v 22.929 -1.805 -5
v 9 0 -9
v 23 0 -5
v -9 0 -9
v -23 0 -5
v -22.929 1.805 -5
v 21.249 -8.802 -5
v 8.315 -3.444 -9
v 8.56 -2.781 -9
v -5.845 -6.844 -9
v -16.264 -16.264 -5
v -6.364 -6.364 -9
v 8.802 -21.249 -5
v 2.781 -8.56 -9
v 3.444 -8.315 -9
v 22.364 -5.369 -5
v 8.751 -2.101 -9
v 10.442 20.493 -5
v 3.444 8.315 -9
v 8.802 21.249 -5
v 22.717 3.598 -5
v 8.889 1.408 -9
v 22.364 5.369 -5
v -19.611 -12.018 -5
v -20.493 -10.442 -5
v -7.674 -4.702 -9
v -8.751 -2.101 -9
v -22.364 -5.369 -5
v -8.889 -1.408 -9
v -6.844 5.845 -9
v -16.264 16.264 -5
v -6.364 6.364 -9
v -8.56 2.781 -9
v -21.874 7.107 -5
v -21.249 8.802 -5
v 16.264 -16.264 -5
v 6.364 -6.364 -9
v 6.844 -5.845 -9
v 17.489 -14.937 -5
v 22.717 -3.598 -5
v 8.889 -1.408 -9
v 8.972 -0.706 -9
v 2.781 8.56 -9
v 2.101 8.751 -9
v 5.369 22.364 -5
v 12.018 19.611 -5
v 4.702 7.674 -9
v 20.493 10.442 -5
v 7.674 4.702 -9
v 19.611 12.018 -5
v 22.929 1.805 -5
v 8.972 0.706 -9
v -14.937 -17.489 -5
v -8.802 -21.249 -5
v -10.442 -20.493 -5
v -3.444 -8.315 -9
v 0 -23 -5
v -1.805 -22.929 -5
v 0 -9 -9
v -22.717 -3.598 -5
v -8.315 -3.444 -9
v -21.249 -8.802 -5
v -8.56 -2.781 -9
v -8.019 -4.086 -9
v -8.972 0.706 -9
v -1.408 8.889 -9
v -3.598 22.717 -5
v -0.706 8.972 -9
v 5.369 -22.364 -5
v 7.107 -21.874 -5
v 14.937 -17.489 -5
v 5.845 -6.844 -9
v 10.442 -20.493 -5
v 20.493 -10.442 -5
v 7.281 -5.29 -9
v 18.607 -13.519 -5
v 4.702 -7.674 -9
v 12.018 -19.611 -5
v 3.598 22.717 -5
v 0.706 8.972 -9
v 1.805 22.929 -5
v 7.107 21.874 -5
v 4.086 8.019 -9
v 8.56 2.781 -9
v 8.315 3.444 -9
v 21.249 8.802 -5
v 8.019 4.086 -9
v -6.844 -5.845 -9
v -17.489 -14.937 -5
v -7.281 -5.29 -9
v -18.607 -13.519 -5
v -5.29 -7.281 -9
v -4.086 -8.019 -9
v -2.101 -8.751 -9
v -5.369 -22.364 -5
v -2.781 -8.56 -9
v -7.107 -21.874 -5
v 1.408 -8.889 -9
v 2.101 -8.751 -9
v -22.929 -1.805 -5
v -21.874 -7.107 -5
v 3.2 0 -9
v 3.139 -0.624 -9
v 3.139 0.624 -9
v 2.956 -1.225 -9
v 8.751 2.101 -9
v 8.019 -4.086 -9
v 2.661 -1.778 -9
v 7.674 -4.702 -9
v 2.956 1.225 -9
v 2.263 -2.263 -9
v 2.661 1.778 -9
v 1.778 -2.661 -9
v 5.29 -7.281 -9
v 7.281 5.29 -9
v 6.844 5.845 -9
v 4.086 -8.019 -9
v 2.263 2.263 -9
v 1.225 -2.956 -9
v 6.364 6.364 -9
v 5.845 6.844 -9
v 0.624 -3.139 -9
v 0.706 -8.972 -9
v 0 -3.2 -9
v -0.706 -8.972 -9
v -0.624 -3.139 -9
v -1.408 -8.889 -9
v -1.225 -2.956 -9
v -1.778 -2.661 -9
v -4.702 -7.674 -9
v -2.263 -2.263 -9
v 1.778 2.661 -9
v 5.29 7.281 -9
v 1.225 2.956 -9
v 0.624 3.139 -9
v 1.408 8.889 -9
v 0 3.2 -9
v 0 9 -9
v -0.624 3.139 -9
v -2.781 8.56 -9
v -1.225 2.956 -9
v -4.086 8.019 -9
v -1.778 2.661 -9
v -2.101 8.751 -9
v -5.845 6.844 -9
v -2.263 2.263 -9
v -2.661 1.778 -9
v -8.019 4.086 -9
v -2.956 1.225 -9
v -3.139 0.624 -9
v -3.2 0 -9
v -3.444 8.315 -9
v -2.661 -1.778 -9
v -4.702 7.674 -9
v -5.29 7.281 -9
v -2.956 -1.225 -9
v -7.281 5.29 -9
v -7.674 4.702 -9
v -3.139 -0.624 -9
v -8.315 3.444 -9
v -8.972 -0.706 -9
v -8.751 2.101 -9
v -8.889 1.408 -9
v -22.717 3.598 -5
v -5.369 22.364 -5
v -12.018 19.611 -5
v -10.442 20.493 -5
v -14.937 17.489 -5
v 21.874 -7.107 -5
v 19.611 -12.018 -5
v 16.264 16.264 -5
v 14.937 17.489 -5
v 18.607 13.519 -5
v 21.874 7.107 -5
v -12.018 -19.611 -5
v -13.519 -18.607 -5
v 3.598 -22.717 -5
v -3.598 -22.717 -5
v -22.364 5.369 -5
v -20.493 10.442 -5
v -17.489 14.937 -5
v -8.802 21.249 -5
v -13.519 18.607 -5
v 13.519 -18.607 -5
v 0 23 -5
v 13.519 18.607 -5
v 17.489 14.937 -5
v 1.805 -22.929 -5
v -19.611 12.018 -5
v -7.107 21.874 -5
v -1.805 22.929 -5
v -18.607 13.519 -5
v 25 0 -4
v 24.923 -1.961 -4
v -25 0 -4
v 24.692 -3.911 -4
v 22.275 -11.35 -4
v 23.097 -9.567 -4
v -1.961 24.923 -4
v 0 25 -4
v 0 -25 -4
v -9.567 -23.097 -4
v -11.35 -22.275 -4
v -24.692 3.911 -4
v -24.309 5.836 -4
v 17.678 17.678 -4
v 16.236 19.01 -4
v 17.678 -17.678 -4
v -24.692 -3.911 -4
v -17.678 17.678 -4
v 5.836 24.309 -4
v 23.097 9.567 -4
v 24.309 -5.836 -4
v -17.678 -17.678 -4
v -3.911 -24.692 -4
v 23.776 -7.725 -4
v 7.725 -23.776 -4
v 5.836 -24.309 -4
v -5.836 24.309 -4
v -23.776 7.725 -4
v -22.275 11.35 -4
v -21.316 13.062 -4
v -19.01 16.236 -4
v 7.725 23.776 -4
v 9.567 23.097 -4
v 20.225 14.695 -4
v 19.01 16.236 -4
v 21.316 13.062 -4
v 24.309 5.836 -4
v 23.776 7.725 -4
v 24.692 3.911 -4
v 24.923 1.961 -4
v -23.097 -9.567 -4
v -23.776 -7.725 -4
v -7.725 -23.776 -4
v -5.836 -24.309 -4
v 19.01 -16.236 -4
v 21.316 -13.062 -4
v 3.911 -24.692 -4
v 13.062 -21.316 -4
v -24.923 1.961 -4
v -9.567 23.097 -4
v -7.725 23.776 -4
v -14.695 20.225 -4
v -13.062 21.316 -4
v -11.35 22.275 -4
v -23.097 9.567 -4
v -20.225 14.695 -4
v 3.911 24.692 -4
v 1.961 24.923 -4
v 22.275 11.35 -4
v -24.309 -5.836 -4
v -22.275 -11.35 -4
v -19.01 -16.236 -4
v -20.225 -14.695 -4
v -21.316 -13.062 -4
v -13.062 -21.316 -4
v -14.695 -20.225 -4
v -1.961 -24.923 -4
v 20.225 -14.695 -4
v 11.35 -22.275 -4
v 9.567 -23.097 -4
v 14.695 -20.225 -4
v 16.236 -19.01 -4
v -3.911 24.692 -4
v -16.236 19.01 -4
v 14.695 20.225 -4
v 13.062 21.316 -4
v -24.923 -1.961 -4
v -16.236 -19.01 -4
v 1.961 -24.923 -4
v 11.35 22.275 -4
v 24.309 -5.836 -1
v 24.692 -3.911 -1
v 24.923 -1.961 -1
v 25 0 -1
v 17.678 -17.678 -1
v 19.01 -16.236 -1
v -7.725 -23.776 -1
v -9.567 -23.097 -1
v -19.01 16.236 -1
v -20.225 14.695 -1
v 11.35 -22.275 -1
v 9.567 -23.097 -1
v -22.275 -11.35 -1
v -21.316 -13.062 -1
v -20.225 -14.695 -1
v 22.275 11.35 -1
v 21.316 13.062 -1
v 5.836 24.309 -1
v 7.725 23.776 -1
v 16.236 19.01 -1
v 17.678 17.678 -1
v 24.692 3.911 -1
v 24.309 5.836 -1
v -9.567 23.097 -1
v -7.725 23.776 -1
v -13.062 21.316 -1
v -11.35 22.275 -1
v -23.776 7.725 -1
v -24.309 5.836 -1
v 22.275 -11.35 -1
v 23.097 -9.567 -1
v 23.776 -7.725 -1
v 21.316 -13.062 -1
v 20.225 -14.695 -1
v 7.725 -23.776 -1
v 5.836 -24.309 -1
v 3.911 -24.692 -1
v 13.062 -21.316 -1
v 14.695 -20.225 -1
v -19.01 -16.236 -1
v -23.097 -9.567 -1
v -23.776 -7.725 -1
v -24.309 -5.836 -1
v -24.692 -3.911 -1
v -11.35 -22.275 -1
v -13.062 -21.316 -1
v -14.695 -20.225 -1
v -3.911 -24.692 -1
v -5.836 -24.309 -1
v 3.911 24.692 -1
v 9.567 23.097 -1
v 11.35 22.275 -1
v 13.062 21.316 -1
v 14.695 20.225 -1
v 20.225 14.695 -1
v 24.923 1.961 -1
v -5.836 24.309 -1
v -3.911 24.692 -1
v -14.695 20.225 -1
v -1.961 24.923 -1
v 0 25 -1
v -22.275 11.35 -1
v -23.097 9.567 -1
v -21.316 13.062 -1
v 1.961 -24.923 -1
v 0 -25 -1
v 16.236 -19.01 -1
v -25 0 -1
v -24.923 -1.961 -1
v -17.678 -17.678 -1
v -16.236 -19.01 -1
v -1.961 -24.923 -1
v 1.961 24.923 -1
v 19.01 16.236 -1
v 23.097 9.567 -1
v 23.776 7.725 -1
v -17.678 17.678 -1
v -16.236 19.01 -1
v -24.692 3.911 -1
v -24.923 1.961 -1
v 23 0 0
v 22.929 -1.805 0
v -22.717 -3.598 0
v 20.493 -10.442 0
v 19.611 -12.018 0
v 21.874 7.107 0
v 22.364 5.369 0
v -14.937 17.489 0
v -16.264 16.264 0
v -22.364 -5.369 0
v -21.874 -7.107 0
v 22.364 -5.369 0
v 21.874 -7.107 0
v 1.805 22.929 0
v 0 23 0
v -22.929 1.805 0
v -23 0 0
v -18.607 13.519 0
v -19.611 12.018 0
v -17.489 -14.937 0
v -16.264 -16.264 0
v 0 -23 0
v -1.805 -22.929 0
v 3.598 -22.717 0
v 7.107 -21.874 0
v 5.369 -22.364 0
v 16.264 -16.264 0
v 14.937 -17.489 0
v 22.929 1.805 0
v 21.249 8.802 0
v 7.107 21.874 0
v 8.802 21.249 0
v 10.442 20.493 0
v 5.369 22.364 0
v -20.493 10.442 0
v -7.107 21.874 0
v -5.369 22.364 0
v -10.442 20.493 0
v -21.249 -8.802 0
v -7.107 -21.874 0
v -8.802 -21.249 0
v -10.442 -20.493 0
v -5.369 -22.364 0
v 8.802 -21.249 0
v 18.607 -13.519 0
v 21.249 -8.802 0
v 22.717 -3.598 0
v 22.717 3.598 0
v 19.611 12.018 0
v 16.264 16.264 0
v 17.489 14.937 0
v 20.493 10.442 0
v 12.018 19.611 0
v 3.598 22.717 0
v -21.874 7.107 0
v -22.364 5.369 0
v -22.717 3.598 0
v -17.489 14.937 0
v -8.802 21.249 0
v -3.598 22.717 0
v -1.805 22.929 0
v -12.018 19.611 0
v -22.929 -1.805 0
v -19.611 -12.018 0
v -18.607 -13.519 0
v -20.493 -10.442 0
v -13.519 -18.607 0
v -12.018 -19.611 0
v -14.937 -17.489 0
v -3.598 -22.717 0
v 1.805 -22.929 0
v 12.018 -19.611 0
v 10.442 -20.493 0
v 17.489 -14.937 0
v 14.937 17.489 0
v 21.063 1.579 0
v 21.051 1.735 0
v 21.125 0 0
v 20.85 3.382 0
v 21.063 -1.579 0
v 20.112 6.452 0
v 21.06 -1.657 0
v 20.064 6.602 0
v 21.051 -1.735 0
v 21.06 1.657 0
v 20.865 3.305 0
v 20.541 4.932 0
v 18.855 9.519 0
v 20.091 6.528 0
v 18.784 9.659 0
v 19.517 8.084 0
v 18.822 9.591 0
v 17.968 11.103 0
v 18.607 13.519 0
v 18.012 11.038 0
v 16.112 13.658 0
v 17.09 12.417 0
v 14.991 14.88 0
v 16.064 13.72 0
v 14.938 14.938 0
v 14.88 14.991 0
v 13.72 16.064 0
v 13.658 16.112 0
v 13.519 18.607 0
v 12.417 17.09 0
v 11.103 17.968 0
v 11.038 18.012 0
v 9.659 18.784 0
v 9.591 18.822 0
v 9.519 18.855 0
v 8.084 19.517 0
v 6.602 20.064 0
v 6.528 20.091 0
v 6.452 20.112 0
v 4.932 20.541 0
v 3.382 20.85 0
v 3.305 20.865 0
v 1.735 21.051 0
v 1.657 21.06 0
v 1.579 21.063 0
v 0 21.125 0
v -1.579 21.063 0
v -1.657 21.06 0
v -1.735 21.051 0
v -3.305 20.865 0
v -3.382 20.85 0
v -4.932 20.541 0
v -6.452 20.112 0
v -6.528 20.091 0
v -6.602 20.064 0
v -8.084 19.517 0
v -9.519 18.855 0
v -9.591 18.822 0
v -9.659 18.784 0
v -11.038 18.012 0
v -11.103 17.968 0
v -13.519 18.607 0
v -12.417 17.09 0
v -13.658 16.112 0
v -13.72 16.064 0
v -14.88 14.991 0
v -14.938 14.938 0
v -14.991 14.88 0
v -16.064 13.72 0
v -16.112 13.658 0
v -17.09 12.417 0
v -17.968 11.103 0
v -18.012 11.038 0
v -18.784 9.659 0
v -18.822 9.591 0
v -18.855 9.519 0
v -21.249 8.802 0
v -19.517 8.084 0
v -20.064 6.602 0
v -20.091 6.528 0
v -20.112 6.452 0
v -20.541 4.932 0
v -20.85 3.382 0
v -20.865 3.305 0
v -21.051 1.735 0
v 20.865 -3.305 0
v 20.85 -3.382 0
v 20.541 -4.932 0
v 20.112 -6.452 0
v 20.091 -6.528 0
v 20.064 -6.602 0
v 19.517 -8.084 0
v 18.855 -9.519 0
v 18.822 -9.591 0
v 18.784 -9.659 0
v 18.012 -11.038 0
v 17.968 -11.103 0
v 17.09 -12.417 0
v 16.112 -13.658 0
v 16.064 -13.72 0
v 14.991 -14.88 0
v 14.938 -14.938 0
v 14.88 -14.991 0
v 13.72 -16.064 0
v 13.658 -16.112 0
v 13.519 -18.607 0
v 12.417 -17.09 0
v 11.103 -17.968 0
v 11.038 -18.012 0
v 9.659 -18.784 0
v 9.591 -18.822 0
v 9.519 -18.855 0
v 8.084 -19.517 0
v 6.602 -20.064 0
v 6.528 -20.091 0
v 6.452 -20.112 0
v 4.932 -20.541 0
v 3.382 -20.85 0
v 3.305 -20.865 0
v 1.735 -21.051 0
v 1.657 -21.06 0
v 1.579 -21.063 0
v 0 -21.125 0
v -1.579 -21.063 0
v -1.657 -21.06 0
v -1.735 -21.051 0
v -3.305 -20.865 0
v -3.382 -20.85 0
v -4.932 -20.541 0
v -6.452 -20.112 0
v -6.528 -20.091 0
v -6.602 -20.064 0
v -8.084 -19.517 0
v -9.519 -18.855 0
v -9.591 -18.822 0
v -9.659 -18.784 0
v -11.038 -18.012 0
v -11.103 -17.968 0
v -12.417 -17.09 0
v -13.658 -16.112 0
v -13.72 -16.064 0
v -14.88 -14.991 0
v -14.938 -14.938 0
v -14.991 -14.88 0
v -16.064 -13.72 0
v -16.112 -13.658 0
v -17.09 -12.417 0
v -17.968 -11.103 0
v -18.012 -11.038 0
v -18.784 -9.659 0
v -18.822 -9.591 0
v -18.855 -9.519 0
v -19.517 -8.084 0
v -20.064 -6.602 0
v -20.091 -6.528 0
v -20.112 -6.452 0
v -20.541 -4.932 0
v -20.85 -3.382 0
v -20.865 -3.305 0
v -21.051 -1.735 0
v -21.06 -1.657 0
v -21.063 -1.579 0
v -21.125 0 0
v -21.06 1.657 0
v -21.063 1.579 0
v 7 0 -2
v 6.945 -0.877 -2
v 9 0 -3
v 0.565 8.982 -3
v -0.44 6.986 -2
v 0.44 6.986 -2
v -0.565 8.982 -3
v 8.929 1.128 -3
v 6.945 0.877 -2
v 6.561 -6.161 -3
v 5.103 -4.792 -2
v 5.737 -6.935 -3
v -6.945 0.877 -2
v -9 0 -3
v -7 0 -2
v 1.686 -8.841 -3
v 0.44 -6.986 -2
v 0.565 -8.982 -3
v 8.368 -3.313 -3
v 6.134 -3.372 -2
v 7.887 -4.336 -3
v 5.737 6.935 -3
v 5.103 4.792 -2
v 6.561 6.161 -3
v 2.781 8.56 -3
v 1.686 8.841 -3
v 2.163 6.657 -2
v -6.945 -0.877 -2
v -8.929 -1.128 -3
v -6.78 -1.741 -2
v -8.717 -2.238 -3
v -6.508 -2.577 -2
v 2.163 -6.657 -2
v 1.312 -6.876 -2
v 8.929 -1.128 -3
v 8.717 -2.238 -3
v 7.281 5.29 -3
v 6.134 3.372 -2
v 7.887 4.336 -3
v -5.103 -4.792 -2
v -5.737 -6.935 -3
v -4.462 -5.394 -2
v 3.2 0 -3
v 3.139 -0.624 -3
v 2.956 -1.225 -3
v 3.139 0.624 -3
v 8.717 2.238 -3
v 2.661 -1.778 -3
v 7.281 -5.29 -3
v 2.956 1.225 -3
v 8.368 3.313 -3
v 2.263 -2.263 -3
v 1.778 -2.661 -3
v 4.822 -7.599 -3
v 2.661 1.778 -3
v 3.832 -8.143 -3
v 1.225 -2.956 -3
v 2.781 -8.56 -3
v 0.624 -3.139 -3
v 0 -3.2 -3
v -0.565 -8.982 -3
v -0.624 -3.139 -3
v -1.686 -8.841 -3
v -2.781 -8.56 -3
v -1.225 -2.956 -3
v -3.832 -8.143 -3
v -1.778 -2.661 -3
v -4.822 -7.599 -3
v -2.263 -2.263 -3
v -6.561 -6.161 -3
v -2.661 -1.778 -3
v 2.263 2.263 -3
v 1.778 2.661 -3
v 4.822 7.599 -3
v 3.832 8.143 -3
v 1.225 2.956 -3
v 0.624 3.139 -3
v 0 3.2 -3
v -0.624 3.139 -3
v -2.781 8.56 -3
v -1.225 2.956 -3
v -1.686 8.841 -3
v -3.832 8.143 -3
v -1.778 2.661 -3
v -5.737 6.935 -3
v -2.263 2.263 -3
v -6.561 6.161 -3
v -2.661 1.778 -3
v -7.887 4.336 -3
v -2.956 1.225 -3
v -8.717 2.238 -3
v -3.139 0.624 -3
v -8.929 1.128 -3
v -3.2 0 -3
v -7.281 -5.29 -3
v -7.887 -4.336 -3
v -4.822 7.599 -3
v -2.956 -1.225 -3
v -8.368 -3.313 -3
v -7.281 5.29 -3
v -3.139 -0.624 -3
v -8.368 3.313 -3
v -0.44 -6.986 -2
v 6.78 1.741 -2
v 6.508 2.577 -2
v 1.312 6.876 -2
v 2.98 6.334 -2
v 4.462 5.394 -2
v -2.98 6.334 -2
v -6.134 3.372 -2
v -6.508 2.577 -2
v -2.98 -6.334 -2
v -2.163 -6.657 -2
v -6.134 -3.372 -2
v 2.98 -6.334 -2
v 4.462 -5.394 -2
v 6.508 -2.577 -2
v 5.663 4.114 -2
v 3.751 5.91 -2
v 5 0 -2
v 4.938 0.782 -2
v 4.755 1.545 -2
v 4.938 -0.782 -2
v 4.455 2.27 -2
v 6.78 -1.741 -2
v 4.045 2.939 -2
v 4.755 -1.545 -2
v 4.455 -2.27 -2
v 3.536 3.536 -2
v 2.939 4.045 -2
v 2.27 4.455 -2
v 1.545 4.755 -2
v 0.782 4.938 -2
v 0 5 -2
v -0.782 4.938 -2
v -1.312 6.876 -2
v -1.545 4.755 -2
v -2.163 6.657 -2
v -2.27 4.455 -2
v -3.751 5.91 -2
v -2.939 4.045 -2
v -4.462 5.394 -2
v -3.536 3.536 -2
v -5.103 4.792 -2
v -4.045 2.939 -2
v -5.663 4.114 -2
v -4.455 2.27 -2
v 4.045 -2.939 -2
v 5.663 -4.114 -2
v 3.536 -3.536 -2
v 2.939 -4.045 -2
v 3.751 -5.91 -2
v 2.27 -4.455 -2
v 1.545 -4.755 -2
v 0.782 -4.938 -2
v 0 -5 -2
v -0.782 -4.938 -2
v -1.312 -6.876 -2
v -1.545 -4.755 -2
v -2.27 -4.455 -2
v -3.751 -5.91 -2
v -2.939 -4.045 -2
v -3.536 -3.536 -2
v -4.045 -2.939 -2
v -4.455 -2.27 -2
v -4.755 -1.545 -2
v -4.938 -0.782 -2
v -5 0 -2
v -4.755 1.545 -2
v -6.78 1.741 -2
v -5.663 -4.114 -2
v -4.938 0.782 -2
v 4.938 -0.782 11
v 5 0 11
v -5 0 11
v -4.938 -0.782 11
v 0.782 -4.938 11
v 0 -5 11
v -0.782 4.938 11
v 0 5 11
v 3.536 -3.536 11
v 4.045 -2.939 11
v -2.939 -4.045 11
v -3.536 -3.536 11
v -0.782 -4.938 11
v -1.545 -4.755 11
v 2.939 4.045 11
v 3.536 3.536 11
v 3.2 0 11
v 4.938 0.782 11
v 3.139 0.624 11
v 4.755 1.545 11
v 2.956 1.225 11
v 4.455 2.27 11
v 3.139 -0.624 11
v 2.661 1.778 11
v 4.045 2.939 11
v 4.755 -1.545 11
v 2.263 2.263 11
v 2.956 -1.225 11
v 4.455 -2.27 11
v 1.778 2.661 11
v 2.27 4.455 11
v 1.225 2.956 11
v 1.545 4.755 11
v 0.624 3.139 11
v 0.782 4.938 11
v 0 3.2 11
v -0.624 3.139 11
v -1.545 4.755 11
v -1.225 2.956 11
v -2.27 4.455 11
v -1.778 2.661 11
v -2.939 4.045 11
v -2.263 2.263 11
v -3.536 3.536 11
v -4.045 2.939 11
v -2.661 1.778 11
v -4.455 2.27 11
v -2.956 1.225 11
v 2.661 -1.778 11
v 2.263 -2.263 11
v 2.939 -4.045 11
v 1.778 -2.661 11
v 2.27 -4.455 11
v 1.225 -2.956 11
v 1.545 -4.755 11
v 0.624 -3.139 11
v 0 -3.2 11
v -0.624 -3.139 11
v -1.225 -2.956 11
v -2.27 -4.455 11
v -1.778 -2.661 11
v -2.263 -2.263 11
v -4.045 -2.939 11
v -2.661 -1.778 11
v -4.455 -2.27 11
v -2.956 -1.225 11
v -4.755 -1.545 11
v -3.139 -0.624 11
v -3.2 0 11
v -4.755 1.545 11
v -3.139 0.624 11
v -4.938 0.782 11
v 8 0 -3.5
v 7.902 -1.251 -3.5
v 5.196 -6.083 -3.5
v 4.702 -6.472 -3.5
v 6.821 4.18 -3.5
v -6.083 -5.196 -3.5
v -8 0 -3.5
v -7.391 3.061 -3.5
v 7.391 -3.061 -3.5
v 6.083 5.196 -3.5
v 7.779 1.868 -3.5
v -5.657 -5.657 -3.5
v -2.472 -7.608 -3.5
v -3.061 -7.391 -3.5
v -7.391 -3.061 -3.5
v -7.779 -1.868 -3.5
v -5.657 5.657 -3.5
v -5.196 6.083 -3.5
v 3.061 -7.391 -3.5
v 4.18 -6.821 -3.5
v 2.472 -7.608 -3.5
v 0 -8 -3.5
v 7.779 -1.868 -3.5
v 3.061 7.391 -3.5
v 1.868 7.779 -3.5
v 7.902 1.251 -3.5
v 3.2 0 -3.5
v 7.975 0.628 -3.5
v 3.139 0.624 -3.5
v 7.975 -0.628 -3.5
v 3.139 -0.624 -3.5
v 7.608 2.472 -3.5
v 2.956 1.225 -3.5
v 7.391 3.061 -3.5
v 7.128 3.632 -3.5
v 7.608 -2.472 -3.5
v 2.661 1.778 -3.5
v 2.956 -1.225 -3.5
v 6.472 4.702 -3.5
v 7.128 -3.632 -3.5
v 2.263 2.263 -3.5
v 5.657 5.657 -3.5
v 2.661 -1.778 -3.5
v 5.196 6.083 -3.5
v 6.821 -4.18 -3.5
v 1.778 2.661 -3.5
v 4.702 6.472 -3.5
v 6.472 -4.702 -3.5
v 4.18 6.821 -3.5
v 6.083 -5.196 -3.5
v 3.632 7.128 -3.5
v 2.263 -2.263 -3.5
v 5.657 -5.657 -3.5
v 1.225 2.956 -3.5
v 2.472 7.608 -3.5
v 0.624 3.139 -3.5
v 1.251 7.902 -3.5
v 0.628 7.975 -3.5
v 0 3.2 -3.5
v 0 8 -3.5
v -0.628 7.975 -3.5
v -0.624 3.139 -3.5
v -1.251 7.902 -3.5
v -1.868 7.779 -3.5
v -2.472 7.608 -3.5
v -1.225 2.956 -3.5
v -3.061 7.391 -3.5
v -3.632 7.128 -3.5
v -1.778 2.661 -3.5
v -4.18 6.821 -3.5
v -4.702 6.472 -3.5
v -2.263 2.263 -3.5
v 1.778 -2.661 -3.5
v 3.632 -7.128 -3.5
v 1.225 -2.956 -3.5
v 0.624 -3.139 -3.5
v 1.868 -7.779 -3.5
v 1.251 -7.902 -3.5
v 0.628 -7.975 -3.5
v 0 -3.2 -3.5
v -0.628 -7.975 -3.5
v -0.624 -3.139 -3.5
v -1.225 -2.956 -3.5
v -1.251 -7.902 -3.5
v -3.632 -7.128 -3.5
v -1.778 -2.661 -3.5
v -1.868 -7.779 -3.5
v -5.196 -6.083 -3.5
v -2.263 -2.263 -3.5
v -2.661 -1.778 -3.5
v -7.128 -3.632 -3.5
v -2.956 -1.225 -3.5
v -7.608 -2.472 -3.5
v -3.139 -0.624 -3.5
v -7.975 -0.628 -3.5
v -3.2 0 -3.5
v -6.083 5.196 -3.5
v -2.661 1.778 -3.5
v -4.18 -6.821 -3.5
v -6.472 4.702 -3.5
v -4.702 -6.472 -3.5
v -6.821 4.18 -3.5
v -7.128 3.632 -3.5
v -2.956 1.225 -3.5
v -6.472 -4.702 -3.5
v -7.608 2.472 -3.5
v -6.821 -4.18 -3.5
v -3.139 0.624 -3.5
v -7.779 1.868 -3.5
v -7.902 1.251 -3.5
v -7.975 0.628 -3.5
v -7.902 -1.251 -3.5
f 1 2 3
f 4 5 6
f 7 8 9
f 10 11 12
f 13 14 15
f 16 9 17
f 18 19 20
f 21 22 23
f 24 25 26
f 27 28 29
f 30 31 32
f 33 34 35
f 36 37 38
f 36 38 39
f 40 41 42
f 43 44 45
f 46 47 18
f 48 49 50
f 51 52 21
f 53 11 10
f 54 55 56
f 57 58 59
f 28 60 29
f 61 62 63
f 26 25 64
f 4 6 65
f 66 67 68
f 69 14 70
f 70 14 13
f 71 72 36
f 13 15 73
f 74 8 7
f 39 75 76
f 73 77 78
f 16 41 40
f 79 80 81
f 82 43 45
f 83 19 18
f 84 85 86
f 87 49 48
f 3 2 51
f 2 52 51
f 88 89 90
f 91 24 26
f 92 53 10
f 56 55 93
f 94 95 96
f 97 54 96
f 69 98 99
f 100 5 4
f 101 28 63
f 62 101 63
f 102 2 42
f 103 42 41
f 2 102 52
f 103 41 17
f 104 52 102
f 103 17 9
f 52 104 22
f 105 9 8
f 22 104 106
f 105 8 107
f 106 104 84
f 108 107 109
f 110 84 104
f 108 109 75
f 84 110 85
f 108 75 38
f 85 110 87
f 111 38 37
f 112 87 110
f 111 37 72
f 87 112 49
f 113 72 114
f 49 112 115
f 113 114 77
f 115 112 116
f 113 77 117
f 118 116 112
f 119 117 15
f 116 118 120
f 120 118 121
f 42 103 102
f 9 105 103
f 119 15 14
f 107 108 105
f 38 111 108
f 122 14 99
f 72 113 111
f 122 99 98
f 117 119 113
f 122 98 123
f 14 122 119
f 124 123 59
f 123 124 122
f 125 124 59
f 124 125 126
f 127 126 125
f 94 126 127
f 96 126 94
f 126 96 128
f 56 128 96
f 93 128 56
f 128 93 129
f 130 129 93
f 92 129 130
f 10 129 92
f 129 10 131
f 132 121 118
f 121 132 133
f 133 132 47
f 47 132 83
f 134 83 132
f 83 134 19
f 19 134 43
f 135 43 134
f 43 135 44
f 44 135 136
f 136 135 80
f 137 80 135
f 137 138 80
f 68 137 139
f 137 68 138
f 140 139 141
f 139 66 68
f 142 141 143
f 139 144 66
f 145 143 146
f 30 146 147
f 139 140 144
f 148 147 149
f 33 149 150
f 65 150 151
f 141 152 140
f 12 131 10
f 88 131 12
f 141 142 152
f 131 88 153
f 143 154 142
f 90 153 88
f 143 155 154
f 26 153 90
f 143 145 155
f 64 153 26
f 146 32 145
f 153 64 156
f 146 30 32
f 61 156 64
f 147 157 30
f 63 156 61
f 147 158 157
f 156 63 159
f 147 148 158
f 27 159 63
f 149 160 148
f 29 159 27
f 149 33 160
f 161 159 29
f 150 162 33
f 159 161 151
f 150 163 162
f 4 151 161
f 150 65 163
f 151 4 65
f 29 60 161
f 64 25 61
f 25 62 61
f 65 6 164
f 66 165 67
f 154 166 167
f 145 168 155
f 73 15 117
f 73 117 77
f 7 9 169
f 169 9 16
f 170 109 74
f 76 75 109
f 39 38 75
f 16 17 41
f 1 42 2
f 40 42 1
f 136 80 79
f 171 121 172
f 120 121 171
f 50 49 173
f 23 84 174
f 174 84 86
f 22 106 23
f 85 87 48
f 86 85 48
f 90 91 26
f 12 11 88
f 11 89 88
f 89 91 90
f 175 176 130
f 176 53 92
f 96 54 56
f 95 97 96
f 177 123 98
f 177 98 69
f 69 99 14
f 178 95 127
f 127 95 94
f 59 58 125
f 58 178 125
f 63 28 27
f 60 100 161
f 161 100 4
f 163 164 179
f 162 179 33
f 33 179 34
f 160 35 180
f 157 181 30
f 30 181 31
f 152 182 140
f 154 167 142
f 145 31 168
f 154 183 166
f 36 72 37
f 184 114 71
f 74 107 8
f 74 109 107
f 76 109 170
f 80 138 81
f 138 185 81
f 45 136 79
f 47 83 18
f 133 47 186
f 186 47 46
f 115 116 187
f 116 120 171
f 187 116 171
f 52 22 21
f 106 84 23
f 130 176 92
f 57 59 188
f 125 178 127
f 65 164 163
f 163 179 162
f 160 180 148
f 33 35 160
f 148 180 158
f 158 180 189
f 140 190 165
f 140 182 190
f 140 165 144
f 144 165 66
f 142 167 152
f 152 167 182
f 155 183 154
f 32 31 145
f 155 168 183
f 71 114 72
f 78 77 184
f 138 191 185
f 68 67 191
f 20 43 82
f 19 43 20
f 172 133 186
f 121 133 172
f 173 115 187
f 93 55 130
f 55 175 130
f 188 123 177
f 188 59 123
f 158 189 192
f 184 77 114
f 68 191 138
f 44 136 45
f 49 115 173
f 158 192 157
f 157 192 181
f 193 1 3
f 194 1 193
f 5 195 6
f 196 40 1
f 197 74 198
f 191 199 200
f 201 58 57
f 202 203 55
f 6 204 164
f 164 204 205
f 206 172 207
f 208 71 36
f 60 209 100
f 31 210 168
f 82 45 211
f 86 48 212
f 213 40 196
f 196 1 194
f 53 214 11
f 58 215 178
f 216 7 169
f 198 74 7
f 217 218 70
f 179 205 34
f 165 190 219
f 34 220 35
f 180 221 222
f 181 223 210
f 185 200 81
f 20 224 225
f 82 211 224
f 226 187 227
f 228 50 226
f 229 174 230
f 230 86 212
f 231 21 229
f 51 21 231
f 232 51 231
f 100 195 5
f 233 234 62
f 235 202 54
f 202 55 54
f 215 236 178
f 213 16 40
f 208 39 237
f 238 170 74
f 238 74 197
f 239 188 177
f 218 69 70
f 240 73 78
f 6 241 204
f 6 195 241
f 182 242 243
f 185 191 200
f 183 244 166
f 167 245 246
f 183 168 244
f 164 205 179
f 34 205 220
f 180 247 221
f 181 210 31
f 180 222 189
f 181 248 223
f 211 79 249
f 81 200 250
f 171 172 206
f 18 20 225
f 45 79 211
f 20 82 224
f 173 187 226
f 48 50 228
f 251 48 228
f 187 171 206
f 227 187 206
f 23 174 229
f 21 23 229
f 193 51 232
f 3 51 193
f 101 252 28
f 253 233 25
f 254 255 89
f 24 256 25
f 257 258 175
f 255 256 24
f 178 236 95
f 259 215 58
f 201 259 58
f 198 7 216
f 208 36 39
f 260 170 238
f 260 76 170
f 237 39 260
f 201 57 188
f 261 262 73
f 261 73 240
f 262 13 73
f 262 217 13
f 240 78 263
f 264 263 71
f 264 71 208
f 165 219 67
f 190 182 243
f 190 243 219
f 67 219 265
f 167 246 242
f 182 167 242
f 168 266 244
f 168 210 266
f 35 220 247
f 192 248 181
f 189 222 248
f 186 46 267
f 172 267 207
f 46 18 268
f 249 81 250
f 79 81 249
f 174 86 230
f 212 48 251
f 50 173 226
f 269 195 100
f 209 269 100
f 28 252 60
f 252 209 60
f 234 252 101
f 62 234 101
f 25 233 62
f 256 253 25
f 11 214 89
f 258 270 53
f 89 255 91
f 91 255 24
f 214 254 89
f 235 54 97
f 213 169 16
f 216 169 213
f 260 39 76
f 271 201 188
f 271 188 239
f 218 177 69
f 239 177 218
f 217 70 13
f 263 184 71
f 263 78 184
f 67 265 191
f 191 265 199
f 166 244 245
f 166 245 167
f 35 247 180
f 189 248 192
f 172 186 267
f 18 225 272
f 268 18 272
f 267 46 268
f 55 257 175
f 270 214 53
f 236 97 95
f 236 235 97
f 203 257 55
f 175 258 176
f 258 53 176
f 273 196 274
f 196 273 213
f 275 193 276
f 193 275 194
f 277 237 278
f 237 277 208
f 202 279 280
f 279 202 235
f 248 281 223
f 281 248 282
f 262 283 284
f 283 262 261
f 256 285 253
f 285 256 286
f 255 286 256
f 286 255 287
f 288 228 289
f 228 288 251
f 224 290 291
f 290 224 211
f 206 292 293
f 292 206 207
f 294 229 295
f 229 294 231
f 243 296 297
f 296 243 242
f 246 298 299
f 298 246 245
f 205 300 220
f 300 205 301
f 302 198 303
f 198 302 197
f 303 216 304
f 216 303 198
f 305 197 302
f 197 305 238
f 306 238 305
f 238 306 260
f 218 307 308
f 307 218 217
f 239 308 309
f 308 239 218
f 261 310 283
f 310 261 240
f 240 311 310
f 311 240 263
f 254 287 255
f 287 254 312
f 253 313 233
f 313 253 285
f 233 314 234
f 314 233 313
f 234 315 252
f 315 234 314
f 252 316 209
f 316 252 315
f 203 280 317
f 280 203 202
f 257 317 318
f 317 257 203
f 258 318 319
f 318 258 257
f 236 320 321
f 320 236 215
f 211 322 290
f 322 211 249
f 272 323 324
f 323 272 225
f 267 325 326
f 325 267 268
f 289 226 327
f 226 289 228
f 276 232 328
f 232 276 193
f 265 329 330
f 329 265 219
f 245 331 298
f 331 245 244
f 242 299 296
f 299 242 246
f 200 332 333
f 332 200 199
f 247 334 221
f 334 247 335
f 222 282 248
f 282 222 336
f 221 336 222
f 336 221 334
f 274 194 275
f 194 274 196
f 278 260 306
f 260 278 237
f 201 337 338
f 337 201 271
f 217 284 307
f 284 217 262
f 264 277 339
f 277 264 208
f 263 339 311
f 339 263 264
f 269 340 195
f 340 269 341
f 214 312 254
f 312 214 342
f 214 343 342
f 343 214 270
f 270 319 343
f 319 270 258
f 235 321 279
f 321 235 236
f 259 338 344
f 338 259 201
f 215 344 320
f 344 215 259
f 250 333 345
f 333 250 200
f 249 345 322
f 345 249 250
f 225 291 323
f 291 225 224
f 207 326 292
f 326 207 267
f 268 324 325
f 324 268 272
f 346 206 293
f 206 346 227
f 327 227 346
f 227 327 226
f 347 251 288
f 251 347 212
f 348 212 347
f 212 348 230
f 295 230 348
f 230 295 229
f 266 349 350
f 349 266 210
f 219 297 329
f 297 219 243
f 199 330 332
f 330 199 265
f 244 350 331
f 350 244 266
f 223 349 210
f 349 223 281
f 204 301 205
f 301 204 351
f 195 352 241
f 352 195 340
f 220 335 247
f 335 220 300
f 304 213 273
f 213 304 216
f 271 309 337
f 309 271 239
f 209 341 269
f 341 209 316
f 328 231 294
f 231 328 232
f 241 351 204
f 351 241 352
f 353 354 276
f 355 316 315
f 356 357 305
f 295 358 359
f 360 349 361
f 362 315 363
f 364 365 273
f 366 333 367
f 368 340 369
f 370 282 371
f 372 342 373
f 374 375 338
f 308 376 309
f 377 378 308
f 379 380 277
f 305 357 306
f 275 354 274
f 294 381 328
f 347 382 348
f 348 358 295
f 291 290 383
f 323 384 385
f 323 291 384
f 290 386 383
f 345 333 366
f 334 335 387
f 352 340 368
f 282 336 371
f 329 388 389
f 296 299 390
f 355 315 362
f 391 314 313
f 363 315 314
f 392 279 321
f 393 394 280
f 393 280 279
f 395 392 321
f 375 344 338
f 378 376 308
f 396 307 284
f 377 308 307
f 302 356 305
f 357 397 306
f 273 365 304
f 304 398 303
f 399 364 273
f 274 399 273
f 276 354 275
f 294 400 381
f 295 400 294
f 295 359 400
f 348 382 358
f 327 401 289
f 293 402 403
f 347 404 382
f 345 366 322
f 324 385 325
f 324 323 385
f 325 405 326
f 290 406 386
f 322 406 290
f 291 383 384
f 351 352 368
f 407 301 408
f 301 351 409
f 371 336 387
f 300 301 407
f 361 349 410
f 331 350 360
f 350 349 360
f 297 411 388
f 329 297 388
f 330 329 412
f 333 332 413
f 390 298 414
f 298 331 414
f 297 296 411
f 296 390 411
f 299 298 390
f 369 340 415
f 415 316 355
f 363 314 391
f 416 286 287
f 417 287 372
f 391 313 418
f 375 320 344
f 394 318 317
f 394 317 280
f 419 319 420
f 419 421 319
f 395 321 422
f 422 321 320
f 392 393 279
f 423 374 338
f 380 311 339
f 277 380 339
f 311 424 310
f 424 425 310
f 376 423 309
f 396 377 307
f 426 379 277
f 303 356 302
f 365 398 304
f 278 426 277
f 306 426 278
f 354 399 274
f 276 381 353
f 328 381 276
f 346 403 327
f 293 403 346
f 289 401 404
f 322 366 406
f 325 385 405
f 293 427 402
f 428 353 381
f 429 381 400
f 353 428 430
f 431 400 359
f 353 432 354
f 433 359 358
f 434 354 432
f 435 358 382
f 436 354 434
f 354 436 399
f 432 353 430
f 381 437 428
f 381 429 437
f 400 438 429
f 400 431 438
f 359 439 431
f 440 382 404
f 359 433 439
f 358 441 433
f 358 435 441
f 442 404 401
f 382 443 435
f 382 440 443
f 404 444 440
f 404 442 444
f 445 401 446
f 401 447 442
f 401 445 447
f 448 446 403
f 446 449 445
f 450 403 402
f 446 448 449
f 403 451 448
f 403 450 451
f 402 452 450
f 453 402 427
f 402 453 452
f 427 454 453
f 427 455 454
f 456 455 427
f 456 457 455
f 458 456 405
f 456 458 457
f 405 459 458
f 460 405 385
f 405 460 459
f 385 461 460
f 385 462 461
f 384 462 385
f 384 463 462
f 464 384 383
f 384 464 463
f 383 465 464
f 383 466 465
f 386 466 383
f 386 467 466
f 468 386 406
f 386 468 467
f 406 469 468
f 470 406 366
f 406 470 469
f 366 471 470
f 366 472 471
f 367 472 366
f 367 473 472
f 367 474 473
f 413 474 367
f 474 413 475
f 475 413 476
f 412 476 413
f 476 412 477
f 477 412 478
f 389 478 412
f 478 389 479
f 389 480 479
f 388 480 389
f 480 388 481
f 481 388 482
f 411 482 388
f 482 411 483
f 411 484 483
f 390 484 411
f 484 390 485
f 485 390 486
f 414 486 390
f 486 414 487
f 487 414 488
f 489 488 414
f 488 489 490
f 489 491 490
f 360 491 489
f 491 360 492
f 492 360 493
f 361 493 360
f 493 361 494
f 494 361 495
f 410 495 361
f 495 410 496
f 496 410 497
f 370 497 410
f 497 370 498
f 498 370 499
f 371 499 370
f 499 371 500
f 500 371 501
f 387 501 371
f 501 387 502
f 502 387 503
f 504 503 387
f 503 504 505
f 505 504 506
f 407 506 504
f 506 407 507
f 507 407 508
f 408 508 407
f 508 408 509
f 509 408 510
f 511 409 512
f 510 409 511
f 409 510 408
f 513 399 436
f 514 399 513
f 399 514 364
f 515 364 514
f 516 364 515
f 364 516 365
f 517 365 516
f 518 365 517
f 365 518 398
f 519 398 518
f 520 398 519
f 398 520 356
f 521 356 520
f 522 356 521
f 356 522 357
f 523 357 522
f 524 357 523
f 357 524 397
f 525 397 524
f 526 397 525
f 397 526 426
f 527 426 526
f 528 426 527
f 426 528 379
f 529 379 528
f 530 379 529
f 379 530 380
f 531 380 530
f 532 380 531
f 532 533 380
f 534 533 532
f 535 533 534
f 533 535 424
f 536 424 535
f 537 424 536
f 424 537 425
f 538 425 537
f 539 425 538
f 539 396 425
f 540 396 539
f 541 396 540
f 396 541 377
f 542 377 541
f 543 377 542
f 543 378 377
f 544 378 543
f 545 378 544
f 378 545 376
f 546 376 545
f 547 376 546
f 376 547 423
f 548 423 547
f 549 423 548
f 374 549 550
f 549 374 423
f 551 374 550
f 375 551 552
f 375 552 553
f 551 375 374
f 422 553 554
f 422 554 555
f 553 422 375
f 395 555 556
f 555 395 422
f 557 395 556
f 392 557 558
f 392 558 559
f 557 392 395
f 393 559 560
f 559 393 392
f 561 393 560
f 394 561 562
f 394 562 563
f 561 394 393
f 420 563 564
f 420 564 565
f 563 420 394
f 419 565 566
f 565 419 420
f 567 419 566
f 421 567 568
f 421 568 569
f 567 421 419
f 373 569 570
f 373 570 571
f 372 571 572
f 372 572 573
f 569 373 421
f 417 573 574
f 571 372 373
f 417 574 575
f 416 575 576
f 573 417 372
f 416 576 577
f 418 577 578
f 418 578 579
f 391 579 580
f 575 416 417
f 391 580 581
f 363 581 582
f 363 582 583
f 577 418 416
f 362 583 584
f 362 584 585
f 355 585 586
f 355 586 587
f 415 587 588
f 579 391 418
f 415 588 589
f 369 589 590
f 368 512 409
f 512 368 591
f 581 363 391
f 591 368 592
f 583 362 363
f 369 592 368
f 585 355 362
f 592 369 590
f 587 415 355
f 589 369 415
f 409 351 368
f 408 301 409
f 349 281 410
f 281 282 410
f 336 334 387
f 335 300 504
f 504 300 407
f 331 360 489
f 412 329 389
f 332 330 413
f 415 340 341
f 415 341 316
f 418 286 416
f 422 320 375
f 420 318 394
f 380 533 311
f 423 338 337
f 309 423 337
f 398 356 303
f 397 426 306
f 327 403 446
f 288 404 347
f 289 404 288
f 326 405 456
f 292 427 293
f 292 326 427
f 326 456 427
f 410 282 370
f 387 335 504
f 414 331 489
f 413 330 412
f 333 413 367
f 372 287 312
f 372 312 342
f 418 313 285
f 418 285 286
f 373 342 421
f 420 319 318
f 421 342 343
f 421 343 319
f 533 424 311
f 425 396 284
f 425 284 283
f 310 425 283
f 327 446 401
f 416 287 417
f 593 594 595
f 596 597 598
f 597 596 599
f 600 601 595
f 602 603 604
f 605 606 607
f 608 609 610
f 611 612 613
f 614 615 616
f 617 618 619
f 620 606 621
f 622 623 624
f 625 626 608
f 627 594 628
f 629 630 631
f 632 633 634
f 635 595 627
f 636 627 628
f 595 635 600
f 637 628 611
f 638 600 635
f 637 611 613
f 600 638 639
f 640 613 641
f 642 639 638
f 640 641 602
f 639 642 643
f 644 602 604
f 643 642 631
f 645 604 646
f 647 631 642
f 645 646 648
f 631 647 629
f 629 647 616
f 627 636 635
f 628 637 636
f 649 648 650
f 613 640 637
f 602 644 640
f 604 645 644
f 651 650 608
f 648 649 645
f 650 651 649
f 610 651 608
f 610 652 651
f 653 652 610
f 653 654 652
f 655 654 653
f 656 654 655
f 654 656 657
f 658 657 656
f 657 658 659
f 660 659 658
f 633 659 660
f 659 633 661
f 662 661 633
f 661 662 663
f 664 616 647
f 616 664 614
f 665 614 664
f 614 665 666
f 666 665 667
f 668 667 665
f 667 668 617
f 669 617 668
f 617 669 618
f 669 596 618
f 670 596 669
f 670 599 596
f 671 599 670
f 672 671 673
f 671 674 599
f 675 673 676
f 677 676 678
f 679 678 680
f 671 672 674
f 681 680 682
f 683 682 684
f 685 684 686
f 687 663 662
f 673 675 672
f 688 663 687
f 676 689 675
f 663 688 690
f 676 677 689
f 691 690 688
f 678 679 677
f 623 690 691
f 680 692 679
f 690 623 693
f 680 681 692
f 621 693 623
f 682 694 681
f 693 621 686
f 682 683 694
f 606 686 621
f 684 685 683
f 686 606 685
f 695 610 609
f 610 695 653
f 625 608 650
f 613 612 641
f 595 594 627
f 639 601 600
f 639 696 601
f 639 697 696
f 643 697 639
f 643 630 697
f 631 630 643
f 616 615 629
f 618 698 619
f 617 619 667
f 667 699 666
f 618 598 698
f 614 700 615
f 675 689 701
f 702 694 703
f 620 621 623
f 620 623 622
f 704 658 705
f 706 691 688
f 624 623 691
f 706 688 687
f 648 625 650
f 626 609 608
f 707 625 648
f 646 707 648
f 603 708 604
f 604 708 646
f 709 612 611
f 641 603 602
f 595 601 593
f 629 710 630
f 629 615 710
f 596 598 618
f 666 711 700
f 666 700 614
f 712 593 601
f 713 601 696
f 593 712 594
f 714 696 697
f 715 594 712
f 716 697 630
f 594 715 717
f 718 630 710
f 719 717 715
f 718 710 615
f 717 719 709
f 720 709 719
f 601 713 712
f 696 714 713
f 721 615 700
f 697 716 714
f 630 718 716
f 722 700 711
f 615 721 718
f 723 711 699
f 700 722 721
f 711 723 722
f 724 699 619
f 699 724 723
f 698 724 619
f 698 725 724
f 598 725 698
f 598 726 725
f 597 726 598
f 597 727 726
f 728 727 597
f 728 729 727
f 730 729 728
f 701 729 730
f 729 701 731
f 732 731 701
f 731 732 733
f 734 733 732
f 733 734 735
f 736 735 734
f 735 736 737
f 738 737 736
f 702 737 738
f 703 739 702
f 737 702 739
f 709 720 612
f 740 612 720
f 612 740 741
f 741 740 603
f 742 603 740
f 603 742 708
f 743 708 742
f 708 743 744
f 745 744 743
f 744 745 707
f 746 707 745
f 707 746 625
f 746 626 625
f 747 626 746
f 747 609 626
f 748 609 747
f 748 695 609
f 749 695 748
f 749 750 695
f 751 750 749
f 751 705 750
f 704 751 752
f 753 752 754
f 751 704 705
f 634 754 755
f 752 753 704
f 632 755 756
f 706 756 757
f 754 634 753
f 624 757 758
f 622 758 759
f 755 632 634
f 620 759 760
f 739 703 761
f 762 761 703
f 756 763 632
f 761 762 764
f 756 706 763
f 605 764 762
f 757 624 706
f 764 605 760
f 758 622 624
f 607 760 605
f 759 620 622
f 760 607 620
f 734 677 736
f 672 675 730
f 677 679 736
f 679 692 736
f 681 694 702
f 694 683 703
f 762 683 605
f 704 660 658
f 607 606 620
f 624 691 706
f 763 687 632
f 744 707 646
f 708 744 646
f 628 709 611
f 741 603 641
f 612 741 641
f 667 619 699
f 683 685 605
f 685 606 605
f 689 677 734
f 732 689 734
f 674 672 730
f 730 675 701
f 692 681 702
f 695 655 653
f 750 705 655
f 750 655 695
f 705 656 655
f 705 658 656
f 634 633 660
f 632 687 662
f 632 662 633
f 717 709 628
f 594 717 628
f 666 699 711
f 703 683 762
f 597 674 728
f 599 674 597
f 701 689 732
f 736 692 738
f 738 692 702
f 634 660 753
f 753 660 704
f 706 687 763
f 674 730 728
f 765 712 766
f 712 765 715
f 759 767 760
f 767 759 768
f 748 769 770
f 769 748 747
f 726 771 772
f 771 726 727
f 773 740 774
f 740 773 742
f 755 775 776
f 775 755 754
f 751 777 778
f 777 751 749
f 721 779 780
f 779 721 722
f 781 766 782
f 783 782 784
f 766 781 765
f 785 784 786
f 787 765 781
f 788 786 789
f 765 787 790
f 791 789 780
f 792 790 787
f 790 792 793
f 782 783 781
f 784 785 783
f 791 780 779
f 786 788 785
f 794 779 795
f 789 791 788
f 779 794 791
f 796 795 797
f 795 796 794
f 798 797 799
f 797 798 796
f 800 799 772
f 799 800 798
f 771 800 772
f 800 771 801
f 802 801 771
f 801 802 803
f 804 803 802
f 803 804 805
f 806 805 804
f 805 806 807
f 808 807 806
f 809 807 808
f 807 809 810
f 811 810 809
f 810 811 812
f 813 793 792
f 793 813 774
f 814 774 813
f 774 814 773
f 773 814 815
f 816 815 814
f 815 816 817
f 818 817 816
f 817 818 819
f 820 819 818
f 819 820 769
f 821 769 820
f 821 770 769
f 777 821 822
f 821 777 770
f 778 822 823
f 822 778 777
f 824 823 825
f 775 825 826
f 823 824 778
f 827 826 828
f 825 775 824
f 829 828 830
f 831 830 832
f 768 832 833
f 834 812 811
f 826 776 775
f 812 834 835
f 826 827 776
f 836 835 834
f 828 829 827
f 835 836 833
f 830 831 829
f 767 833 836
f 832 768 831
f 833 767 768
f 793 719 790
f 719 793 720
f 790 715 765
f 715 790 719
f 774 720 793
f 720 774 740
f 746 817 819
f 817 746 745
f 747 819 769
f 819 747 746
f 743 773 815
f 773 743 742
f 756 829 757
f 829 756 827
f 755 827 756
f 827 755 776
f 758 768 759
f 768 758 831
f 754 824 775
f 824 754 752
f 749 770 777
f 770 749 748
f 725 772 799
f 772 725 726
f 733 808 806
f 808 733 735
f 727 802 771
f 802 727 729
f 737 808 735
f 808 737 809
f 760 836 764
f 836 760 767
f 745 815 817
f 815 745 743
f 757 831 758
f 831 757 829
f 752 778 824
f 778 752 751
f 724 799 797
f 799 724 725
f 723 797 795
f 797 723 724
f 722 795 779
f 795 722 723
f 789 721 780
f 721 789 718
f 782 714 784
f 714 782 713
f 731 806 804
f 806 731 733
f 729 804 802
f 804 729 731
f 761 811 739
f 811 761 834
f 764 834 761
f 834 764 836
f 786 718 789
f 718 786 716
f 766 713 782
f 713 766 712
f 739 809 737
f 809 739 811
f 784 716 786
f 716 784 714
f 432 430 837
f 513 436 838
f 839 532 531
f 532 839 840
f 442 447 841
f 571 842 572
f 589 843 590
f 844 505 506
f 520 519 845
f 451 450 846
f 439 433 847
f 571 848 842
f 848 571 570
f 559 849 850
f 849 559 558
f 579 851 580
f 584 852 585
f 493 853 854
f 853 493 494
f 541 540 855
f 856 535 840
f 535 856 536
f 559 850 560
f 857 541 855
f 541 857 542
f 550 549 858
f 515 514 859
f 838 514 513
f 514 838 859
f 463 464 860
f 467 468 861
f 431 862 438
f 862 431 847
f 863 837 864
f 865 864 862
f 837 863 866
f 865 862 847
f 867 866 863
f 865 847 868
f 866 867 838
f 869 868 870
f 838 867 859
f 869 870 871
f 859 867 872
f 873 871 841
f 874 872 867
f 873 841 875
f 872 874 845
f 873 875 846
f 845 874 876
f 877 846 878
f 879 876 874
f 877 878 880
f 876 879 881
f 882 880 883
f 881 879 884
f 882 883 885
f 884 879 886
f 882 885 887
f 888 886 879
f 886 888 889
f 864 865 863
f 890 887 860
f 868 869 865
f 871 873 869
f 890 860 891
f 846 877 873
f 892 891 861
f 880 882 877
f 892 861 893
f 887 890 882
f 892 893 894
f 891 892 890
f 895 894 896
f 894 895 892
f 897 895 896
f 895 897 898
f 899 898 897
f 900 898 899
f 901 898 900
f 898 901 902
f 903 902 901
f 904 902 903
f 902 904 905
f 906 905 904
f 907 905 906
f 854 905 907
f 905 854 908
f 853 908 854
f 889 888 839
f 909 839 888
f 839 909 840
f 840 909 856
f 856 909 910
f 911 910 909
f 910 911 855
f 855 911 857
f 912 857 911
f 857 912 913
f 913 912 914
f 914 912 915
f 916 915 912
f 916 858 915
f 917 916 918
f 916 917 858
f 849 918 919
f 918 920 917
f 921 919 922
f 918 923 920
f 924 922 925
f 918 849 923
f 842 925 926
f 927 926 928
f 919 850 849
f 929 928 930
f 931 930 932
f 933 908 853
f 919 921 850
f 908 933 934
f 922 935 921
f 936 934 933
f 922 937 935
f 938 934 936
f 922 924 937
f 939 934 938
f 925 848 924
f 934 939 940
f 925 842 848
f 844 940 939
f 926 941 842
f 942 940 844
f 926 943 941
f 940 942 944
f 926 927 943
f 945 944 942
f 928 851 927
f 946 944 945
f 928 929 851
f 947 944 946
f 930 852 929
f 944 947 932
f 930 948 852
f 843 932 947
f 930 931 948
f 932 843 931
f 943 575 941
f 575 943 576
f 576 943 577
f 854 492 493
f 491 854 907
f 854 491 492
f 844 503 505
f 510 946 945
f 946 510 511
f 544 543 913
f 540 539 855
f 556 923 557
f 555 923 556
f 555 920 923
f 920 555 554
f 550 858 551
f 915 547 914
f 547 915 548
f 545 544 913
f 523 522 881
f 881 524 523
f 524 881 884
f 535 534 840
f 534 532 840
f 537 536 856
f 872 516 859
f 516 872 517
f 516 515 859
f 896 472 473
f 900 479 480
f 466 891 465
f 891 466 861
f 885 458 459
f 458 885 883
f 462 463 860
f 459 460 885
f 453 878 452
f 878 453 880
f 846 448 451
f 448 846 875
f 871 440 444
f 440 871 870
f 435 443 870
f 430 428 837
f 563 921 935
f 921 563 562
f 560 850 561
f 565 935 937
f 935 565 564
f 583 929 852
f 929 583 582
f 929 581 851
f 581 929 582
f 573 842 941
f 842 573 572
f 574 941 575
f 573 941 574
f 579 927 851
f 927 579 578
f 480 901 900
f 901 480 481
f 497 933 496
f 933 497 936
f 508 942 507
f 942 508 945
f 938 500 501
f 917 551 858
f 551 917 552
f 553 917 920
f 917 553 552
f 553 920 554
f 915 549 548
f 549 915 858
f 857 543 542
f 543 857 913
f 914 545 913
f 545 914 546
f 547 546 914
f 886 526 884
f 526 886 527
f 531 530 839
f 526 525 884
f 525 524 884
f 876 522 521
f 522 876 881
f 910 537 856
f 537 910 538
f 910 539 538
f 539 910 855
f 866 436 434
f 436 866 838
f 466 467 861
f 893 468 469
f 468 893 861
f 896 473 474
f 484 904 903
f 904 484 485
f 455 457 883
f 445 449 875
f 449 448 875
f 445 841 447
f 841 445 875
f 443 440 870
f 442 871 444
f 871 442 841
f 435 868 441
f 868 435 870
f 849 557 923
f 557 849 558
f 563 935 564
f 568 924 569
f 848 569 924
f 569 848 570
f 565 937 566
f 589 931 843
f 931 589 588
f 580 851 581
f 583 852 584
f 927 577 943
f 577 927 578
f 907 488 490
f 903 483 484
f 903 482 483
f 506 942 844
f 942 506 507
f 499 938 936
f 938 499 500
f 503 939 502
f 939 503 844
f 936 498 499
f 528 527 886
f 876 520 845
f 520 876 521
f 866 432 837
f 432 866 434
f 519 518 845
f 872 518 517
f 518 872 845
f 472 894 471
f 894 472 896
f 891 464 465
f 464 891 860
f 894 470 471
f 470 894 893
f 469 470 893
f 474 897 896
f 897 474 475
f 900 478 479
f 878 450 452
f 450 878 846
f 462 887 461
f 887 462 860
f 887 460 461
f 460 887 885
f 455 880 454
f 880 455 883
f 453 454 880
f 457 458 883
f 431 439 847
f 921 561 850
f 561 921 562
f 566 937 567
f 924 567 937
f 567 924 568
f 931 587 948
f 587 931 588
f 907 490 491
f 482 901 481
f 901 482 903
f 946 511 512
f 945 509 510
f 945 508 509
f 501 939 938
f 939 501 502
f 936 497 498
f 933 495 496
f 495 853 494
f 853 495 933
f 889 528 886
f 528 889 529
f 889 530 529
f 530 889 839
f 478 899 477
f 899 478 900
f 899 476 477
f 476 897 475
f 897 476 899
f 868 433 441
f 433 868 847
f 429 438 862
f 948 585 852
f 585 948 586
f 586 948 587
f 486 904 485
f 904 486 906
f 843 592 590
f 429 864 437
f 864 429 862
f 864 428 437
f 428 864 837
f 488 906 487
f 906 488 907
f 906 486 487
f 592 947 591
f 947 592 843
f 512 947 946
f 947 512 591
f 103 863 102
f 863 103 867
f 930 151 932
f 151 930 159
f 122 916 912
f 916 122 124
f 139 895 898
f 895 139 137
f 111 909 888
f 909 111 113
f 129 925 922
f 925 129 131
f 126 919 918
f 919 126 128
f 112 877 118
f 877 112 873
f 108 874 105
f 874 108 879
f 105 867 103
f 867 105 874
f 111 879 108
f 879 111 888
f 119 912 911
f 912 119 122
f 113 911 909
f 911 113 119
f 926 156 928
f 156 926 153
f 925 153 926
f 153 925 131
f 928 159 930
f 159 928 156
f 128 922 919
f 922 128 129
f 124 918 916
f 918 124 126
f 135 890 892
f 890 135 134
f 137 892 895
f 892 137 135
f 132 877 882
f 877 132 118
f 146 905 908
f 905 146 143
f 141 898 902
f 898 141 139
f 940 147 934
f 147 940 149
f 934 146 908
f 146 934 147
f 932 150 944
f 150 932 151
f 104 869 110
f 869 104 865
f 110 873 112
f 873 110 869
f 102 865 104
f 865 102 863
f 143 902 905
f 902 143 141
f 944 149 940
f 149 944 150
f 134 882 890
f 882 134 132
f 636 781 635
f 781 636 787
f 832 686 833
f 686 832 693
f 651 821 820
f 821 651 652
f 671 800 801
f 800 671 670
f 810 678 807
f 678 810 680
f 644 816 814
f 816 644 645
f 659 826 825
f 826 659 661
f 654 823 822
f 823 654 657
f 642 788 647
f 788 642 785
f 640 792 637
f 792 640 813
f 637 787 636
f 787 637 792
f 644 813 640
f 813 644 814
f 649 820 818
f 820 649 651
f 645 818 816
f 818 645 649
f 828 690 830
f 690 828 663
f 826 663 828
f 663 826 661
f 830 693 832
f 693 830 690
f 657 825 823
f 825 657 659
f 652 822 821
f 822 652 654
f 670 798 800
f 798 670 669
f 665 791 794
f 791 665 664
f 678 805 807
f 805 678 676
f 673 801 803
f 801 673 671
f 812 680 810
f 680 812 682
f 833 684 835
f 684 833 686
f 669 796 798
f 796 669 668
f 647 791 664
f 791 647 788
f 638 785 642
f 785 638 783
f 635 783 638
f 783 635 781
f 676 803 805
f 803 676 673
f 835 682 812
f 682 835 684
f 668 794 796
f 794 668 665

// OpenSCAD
rotate([180,0,0]) {
difference(){ //road wheel
	union() {	//road wheel
		translate([0,0,5])
			cylinder(4,23,9, $fn=80);
		translate([0,0,4])
			cylinder(1,25,23, $fn=80);
		translate([0,0,1])
			cylinder(3,25,25, $fn=80);
		translate([0,0,0])
			cylinder(1,23,25, $fn=80);
	}//union of road wheel
	translate([0,0,-0.5])
		cylinder(4,23,8, $fn=80);
	translate([0,0,-5])
		cylinder(20,3.2,3.2, $fn=32);
}//union of road wheel

difference(){ //road wheel internal part
	union() {	//road wheel internal part
		translate([0,0,2])
			cylinder(1,7,9, $fn=50);
		translate([0,0,-11])
			cylinder(13,5,5, $fn=40);
	} //difference of road wheel internal part
	translate([0,0,-15])
		cylinder(40,3.2,3.2, $fn=32);
}//union of road wheel internal part
}//rotate
